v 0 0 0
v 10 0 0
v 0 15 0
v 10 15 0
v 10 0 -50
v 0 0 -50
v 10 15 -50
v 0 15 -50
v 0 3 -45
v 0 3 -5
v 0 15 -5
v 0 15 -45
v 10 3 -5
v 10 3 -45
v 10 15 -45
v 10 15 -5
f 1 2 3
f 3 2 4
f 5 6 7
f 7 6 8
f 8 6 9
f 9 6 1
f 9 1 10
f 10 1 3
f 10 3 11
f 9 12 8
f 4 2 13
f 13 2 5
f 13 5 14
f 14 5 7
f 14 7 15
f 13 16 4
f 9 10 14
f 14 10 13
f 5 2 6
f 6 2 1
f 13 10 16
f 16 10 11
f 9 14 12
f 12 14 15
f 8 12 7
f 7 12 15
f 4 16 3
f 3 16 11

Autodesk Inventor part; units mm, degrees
ref_plane "YZ Plane" through (0, 0, 0) normal (1, 0, 0) x (0, 1, 0)
ref_plane "XZ Plane" through (0, 0, 0) normal (0, 1, 0) x (-1, 0, 0)
ref_plane "XY Plane" through (0, 0, 0) normal (0, 0, 1) x (1, 0, 0)
sketch "Sketch1" plane through (0, 0, 0) normal (0, 1, 0) x (-1, 0, 0)
  line L0 (0, 0) -> (-10, 0)
  line L1 (-10, 0) -> (-10, -50)
  line L2 (-10, -50) -> (0, -50)
  line L3 (0, -50) -> (0, 0)
  dimension "d0" = 10
  dimension "d1" = 50
extrude "Extrusion1" add sketch "Sketch1" along normal blind 3
sketch "Sketch2" plane through (0, 3, 0) normal (0, 1, 0) x (1, 0, 0)
  line L0 (0, 0) -> (10, 0) projected
  line L1 (10, 0) -> (10, 50) projected
  line L2 (0, 0) -> (10, 0)
  line L3 (10, 0) -> (10, 5)
  line L4 (10, 5) -> (0, 5)
  line L5 (0, 5) -> (0, 0)
  line L6 (0, 50) -> (0, 0) projected
  line L7 (0, 50) -> (10, 50)
  line L8 (10, 50) -> (10, 45)
  line L9 (10, 45) -> (0, 45)
  line L10 (0, 45) -> (0, 50)
  dimension "d4" = 5
  dimension "d5" = 5
extrude "Extrusion2" add sketch "Sketch2" along normal blind 12 contours L5 L4 L1 L0 | L6 L7 L1 L9
equation "\"BendRadius\" = Thickness"
equation "\"BendReliefWidth\" = Thickness"
equation "\"BendReliefDepth\" = 0.5 * Thickness"
equation "\"CornerReliefSize\" = 4 * Thickness"
equation "\"MinimumRemnant\" = 2 * Thickness"
equation "\"TransitionRadius\" = BendRadius"
equation "\"JacobiRadiusSize\" = BendRadius"
equation "\"GapSize\" = Thickness"
equation "\"Thickness\" = 0.5"
